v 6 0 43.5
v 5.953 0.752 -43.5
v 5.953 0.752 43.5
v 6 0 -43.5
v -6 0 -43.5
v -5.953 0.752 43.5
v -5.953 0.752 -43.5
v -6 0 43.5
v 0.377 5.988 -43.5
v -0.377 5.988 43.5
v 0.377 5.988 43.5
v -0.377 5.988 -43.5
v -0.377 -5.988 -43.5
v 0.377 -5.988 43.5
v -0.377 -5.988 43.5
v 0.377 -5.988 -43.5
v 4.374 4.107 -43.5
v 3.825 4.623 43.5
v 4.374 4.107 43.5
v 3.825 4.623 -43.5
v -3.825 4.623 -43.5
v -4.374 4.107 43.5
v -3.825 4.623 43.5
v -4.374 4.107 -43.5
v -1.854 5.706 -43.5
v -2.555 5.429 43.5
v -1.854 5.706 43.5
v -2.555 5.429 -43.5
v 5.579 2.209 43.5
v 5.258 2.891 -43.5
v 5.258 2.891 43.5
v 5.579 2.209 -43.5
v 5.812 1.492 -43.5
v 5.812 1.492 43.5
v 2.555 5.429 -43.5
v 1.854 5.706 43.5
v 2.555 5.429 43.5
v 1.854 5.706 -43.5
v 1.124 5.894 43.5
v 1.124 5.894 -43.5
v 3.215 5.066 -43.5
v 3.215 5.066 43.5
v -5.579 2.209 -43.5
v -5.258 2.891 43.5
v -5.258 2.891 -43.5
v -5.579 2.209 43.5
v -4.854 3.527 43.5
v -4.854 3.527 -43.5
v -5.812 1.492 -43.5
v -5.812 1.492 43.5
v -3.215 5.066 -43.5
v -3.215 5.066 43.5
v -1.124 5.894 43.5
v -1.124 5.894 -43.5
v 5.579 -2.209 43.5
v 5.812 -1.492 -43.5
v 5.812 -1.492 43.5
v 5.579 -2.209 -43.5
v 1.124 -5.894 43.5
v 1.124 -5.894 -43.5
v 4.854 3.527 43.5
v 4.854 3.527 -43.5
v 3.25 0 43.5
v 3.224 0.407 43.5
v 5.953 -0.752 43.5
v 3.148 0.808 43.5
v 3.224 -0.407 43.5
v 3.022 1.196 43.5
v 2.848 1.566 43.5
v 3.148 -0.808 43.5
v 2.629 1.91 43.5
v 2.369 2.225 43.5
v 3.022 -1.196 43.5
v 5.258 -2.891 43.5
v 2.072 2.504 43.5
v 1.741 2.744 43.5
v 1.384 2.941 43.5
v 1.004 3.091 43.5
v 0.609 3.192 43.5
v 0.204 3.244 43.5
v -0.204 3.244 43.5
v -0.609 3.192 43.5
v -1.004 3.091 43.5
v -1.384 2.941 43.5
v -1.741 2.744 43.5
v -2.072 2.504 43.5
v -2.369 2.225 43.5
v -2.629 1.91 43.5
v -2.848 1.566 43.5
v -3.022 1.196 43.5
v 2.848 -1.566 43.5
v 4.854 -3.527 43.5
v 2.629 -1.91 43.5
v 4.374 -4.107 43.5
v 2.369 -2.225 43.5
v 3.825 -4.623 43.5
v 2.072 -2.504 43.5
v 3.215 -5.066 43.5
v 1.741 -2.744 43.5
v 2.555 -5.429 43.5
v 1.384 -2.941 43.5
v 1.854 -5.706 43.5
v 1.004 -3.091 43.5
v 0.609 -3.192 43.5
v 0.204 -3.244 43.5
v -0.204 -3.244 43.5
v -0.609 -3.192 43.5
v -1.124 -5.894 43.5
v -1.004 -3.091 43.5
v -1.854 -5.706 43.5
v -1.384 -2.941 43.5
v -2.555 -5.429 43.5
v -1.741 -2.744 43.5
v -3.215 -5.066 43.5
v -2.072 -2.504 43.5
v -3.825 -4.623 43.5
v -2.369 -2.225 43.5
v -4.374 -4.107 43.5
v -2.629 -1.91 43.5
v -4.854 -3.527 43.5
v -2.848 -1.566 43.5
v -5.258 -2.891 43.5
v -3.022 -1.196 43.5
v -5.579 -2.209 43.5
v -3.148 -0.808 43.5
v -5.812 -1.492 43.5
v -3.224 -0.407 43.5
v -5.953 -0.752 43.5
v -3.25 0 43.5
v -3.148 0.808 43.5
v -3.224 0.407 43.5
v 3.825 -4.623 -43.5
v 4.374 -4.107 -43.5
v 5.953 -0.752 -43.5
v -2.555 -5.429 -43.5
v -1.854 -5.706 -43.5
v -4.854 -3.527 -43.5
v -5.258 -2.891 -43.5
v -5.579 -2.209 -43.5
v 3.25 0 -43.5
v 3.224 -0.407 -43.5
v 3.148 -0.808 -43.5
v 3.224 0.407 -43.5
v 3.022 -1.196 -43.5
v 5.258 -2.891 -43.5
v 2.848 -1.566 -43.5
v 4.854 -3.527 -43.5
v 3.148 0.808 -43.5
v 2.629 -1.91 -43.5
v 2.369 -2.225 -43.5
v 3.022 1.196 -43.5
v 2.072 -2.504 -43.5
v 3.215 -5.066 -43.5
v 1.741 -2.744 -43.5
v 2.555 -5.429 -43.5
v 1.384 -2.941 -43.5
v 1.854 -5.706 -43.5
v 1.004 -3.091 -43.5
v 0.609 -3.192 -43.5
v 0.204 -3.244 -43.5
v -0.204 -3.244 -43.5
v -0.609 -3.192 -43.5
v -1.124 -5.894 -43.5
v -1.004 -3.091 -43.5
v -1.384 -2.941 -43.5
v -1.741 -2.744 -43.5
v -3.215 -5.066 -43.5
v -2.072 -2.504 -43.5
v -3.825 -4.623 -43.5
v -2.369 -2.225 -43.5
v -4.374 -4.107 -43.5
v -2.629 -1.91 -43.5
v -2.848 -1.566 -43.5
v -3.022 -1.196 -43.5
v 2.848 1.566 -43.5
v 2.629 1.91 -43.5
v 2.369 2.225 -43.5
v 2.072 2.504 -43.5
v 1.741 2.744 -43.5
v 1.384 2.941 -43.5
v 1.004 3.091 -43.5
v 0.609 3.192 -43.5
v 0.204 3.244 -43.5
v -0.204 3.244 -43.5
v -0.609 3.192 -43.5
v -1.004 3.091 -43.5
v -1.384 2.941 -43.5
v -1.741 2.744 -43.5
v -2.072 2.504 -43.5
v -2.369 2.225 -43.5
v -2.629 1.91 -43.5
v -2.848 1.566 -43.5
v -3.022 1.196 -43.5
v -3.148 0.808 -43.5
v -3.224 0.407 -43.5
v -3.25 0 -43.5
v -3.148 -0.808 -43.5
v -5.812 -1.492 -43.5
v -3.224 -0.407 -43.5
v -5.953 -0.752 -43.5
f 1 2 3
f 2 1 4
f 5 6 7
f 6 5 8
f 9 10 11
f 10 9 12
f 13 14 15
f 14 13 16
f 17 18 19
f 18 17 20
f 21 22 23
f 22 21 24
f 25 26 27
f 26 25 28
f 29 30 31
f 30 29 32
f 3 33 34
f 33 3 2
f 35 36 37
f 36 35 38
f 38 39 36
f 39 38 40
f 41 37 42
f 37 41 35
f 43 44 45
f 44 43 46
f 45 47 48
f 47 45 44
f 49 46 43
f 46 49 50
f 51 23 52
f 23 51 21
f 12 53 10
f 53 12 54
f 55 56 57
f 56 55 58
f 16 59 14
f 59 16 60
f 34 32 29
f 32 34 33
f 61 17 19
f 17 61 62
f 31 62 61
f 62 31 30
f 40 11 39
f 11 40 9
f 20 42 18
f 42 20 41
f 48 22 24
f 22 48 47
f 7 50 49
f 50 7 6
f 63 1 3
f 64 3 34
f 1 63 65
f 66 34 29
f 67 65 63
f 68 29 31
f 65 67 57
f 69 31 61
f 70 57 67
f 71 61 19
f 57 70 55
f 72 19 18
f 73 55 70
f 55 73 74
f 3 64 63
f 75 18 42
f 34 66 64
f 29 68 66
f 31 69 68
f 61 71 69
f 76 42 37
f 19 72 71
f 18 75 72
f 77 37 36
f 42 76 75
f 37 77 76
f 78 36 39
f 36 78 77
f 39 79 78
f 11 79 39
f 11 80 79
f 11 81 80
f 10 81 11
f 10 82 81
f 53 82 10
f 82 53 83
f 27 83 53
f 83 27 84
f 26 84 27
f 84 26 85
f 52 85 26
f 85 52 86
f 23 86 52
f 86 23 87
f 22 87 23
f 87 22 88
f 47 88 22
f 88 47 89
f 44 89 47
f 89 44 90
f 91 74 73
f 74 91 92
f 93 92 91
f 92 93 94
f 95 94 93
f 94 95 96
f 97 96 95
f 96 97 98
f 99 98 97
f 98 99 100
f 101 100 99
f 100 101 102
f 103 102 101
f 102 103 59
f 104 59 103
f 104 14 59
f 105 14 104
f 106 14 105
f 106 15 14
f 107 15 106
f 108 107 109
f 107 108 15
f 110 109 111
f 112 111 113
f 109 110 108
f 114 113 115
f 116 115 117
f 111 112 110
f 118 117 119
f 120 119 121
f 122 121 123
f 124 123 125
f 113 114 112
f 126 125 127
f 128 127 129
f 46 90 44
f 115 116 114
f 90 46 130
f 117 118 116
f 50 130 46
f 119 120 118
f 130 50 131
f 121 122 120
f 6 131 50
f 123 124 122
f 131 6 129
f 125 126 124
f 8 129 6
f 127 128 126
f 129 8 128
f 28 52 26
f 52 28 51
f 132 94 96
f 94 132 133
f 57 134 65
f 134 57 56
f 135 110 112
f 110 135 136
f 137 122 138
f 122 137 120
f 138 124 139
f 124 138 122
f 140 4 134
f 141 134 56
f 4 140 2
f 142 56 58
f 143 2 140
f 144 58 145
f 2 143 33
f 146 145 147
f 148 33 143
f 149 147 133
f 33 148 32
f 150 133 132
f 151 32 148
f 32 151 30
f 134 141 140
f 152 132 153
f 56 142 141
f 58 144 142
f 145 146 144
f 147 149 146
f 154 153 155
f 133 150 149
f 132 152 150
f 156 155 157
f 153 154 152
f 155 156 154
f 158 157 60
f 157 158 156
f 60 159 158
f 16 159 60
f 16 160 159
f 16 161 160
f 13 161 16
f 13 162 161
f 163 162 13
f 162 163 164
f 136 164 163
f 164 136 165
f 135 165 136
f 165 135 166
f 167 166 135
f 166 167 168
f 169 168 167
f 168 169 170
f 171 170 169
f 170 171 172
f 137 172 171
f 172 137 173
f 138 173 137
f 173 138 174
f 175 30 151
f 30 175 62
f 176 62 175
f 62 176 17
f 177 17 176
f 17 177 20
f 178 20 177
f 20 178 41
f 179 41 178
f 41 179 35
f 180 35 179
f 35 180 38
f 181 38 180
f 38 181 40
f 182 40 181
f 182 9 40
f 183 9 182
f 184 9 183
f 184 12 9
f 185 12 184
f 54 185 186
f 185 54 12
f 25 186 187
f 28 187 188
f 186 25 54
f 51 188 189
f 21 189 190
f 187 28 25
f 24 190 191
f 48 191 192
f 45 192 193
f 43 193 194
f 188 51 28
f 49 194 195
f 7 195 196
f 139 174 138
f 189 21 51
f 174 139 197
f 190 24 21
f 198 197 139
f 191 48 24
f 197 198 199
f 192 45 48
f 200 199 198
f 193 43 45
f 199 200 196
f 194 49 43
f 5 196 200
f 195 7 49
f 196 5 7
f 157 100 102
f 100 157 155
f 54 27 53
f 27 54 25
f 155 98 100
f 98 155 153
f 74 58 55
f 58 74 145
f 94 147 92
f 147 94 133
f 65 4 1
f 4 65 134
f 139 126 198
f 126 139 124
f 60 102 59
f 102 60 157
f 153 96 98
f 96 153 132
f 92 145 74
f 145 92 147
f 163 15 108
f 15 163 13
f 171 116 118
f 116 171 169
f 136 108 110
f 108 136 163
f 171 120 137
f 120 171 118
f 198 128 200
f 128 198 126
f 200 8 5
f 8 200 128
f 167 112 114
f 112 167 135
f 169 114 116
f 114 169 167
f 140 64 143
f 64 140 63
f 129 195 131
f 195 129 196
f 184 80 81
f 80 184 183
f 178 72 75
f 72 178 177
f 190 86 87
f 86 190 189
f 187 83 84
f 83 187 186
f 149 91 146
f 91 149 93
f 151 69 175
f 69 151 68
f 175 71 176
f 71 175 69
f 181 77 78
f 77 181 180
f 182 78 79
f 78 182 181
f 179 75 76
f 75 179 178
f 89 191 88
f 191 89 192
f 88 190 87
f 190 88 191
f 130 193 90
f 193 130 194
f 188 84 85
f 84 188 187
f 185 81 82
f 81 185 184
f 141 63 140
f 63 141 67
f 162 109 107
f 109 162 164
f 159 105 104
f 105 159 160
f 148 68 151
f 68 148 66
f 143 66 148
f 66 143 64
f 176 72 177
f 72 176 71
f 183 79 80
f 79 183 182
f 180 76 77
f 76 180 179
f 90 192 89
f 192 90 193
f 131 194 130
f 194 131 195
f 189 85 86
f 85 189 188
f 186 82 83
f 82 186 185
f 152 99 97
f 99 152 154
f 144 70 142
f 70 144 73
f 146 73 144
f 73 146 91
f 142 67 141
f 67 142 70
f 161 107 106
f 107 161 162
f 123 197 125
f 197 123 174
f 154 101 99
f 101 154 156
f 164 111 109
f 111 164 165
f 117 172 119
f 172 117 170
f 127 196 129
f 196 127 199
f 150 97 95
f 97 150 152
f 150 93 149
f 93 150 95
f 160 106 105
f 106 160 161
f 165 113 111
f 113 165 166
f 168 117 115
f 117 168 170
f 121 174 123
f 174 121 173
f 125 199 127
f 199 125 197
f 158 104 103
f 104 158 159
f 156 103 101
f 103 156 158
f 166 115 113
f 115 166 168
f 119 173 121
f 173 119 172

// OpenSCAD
$fn = 50;


difference() {
	union() {
		translate(v = [0, 0, -43.5000000000]) {
			cylinder(h = 87, r = 6.0000000000);
		}
	}
	union() {
		translate(v = [0, 0, -100.0000000000]) {
			cylinder(h = 200, r = 3.2500000000);
		}
	}
}
